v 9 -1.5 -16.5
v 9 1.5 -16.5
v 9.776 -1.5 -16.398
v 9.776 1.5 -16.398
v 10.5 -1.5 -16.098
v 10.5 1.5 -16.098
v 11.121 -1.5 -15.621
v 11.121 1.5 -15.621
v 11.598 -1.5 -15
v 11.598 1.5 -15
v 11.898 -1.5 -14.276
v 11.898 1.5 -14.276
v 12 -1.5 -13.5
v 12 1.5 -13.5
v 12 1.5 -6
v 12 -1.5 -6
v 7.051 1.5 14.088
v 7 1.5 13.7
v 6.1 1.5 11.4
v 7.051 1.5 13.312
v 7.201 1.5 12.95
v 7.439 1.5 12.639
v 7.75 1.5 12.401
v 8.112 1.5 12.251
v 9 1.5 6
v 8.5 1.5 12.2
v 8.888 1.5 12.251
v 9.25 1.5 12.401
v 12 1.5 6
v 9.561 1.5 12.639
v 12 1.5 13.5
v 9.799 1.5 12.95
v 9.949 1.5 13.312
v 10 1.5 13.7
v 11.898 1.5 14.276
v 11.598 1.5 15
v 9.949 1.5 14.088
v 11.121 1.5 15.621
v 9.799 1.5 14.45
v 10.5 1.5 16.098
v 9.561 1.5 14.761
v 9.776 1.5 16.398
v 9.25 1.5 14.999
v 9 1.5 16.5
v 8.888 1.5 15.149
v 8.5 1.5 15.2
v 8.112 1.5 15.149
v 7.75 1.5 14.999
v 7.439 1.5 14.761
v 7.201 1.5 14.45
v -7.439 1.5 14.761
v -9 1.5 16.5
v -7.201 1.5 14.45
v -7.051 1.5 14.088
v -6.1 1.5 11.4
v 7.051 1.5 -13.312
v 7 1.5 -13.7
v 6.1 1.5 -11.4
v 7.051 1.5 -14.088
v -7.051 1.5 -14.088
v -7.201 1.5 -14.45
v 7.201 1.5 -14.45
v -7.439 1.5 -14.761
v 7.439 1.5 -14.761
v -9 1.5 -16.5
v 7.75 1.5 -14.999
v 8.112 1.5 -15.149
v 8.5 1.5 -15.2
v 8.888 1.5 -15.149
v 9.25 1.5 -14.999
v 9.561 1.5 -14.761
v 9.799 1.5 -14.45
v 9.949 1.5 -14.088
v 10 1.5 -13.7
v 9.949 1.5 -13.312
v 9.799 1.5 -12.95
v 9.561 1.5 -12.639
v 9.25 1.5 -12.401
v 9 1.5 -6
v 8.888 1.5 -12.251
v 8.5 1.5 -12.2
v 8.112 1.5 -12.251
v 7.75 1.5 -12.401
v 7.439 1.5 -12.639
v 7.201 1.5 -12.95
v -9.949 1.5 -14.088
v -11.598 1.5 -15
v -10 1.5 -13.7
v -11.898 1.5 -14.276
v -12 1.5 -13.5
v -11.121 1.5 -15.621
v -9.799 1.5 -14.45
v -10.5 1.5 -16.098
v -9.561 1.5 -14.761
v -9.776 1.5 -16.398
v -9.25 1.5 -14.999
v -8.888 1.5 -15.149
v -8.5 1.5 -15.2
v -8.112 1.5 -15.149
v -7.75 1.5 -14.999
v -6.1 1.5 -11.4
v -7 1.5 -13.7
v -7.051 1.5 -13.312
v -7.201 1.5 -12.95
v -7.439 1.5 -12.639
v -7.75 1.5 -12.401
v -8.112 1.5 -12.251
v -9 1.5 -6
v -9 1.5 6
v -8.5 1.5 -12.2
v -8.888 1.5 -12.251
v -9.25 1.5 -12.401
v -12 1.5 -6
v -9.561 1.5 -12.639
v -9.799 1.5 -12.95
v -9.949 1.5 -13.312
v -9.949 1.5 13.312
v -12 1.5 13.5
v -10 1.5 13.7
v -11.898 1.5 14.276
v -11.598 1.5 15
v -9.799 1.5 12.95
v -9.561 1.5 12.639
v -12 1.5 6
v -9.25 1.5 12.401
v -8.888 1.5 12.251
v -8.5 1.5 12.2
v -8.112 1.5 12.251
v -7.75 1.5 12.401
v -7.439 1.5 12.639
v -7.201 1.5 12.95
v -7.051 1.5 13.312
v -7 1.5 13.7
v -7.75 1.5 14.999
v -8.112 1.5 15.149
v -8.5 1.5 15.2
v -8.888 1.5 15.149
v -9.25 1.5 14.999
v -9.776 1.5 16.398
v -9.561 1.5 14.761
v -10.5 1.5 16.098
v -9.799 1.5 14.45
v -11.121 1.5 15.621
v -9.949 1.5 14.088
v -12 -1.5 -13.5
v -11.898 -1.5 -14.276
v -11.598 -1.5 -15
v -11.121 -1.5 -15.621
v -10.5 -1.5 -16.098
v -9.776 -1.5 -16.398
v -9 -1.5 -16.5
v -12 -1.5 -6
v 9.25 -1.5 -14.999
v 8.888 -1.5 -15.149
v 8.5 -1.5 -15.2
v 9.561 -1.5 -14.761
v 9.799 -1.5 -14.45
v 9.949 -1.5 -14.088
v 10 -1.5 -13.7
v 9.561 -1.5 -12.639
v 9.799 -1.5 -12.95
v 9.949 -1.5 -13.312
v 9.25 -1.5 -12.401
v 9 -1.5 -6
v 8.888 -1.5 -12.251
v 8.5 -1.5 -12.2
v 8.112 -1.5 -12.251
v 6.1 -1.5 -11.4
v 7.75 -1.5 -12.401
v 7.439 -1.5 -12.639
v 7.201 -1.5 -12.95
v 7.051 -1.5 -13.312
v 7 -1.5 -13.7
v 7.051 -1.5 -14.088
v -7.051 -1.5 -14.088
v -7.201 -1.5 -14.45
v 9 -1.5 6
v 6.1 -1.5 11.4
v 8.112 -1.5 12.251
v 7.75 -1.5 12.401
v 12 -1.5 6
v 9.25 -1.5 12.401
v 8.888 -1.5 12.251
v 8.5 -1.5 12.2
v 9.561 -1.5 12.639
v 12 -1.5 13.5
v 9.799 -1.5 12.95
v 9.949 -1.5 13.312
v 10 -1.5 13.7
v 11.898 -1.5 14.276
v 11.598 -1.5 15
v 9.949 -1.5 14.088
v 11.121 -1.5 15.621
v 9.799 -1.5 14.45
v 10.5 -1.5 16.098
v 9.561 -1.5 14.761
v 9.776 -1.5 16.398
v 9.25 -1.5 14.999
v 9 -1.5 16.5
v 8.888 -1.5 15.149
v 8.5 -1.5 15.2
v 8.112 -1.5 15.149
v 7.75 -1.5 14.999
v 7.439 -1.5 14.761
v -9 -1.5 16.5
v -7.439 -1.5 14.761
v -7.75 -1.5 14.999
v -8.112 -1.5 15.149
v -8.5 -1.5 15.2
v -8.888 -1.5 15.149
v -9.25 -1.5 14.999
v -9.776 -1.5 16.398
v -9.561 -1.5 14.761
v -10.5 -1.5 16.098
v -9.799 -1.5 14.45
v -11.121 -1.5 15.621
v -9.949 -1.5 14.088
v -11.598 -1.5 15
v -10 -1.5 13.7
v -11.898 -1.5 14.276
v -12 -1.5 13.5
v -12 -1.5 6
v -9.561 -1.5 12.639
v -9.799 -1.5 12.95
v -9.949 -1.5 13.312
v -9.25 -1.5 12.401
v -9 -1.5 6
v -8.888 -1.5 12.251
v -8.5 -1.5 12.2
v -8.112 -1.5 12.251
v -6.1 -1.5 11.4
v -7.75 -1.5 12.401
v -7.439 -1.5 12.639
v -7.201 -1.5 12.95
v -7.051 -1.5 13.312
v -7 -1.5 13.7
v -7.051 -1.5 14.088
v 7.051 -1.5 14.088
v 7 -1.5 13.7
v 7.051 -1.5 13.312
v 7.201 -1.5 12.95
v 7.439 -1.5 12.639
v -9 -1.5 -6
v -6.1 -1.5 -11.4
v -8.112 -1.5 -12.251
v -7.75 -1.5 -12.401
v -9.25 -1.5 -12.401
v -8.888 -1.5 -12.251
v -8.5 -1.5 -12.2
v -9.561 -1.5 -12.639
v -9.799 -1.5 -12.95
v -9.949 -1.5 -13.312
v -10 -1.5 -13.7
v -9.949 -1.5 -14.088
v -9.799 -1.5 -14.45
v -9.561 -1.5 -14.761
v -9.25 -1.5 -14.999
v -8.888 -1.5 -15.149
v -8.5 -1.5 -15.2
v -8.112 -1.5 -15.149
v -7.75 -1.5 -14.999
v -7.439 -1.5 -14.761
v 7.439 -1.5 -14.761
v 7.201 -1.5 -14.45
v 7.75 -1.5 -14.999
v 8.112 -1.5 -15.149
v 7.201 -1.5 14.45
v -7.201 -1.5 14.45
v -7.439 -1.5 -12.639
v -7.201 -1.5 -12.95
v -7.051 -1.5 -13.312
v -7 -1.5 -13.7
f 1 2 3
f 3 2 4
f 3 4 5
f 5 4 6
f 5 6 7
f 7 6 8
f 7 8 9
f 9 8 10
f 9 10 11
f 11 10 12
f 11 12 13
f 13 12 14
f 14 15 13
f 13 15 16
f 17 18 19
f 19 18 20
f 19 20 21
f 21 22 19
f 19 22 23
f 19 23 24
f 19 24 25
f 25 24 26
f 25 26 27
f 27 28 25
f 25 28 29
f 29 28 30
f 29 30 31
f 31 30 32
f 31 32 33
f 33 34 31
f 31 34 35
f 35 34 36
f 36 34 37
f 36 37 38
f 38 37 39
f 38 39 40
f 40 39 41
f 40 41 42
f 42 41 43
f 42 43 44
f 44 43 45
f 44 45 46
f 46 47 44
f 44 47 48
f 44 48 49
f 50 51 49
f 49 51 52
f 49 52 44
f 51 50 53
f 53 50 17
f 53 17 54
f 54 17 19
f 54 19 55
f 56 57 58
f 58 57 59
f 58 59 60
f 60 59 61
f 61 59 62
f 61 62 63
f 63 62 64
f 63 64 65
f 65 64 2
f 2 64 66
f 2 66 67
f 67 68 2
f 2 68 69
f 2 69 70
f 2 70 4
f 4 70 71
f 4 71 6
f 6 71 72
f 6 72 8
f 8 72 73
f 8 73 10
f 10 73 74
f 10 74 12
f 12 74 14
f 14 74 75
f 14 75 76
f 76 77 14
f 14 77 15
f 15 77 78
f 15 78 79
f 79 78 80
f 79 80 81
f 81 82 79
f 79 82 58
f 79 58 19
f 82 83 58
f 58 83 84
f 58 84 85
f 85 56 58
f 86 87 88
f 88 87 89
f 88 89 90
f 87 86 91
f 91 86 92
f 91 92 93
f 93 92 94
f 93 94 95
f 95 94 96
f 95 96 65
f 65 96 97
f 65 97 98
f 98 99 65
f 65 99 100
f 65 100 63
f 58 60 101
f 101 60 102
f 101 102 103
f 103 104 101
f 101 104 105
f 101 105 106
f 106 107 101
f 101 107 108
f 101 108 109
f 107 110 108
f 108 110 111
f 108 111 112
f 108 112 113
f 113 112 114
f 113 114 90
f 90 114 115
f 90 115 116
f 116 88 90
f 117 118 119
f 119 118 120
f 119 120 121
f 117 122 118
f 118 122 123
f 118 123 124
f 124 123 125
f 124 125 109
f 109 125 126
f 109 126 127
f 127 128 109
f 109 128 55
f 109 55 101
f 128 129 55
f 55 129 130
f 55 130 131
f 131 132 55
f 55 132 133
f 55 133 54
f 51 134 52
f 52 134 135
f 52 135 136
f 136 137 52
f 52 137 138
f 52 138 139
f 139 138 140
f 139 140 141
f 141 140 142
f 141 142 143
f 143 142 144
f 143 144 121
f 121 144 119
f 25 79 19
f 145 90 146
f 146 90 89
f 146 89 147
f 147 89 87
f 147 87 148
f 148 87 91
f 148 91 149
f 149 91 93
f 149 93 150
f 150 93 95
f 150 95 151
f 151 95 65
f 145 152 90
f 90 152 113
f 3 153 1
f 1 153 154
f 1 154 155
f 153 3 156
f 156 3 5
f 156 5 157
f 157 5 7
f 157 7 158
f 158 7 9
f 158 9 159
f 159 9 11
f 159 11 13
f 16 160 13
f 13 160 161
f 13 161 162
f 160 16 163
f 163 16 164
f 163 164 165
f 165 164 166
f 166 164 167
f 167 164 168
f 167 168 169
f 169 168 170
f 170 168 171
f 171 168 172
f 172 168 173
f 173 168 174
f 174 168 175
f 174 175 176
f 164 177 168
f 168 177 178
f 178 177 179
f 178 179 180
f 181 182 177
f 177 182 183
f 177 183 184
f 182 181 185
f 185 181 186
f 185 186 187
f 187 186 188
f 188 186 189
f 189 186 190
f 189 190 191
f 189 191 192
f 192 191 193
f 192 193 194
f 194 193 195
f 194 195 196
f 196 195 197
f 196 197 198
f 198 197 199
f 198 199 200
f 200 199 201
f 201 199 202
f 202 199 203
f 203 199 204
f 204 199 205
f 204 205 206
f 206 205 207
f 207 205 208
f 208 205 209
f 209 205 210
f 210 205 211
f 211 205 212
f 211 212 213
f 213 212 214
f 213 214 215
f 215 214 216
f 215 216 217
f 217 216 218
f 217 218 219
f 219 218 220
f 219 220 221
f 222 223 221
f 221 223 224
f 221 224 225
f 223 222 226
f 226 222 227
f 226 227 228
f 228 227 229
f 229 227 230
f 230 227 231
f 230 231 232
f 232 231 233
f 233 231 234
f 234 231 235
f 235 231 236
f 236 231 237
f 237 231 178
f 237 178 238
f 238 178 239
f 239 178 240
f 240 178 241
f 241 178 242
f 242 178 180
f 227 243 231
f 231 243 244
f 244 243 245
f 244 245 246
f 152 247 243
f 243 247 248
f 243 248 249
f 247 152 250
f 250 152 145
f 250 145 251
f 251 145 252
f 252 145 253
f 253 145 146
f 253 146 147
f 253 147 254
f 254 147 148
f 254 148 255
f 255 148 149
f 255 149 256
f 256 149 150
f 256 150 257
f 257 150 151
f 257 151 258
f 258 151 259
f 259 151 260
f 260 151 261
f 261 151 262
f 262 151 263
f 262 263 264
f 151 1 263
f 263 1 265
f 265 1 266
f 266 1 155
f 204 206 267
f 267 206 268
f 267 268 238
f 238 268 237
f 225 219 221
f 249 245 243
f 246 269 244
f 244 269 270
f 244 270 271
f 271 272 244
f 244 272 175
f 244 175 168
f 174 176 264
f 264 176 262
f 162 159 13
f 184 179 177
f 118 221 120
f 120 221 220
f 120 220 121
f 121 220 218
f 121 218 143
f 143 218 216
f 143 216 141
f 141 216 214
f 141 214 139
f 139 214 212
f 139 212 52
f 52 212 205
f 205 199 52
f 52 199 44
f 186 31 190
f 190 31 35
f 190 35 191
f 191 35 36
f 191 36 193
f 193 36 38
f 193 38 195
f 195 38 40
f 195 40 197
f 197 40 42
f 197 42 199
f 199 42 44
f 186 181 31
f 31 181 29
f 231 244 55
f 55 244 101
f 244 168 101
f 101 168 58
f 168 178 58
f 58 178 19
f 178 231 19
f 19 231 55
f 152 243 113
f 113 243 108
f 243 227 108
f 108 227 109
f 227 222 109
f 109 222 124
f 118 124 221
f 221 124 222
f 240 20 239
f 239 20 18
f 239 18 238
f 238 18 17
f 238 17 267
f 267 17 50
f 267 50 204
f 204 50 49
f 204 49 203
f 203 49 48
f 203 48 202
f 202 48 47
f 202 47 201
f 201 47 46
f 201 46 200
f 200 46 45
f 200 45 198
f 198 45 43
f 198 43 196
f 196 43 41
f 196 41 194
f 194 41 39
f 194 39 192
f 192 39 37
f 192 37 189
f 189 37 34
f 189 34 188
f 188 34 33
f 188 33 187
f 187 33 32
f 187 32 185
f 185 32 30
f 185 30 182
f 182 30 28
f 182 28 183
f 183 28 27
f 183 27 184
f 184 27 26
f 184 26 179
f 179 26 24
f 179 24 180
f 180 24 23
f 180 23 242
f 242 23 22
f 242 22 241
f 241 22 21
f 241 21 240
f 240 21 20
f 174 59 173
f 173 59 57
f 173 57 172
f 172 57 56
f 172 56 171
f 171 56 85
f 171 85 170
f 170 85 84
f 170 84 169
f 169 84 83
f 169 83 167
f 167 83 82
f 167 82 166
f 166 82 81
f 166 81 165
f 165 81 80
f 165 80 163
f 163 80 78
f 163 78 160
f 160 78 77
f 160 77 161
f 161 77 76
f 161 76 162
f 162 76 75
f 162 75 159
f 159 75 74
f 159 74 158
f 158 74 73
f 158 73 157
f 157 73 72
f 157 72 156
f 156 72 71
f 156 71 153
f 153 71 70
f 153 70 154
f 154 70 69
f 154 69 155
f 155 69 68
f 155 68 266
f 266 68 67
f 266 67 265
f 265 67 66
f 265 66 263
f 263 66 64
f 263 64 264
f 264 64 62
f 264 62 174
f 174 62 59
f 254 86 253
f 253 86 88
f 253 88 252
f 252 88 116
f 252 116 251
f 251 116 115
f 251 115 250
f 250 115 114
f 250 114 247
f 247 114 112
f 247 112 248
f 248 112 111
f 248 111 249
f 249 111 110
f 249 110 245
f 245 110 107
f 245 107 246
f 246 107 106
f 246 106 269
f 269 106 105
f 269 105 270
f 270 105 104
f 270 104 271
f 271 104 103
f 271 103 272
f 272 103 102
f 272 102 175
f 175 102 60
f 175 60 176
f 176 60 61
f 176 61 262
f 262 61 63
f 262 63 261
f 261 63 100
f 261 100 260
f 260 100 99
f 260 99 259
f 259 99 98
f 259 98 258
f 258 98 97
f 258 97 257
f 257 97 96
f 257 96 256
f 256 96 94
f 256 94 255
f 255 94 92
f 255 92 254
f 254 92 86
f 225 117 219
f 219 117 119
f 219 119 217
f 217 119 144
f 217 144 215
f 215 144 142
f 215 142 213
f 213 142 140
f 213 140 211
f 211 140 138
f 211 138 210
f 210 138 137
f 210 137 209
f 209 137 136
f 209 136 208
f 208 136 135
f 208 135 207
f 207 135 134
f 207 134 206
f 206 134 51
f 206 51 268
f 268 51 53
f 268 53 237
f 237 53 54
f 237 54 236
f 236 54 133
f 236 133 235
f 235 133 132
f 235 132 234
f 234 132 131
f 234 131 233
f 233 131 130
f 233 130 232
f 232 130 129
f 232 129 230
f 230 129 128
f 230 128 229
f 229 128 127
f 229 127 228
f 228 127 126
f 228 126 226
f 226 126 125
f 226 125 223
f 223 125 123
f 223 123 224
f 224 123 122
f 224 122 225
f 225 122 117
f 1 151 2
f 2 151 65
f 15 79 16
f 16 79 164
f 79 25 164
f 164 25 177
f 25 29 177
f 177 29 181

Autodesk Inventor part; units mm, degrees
ref_plane "YZ Plane" through (0, 0, 0) normal (1, 0, 0) x (0, 1, 0)
ref_plane "XZ Plane" through (0, 0, 0) normal (0, 1, 0) x (-1, 0, 0)
ref_plane "XY Plane" through (0, 0, 0) normal (0, 0, 1) x (1, 0, 0)
sketch "草圖1" plane through (0, 0, 0) normal (0, 1, 0) x (-1, 0, 0)
  line L0 (12, 16.5) -> (-12, 16.5)
  line L1 (-12, -16.5) -> (12, -16.5)
  line L2 (12, -16.5) -> (12, 16.5)
  line L3 (6.1, 11.4) -> (-6.1, 11.4)
  line L4 (-6.1, 11.4) -> (-6.1, -11.4)
  line L5 (-6.1, -11.4) -> (6.1, -11.4)
  line L6 (6.1, -11.4) -> (6.1, 11.4)
  circle A0 centre (8.5, 13.7) radius 1.5
  line L7 (12, 6) -> (9, 6)
  line L8 (9, 6) -> (9, -6)
  line L9 (9, -6) -> (12, -6)
  line L10 (12, -6) -> (12, 6)
  line L11 (0, -23.1) -> (0, 23.1) projected
  line L12 (16.8, 0) -> (-16.8, 0) projected
  circle A1 centre (8.5, -13.7) radius 1.5
  circle A2 centre (-8.5, 13.7) radius 1.5
  line L13 (-12, 6) -> (-9, 6)
  line L14 (-9, 6) -> (-9, -6)
  line L15 (-9, -6) -> (-12, -6)
  circle A3 centre (-8.5, -13.7) radius 1.5
  line L16 (-12, 16.5) -> (-12, 6)
  line L17 (-12, -6) -> (-12, -16.5)
  point P0 (0, 0)
  dimension "d0" = 16.5
  dimension "d1" = 33
  dimension "d2" = 24
  dimension "d4" = 12.2
  dimension "d5" = 22.8
  dimension "d6" = 6.1
  dimension "d7" = 11.4
  dimension "d8" = 3
  dimension "d9" = 3.5
  dimension "d10" = 2.8
  dimension "d11" = 12
  dimension "d12" = 3
  dimension "d13" = 6
extrude "擠出1" add sketch "草圖1" along normal mid plane 3 contours L2 L7 L8 L12 L6 L3 L11 L0 | L11 L3 L4 L12 L14 L13 L16 L0 | L2 L1 L11 L5 L6 L12 L8 L9 | L4 L5 L11 L1 L17 L15 L14 L12
fillet "圓角1" radius 3 4 edges at (12, 0, 16.5) (-12, 0, 16.5) (-12, 0, -16.5) (12, 0, -16.5)
properties part number "板子7"
